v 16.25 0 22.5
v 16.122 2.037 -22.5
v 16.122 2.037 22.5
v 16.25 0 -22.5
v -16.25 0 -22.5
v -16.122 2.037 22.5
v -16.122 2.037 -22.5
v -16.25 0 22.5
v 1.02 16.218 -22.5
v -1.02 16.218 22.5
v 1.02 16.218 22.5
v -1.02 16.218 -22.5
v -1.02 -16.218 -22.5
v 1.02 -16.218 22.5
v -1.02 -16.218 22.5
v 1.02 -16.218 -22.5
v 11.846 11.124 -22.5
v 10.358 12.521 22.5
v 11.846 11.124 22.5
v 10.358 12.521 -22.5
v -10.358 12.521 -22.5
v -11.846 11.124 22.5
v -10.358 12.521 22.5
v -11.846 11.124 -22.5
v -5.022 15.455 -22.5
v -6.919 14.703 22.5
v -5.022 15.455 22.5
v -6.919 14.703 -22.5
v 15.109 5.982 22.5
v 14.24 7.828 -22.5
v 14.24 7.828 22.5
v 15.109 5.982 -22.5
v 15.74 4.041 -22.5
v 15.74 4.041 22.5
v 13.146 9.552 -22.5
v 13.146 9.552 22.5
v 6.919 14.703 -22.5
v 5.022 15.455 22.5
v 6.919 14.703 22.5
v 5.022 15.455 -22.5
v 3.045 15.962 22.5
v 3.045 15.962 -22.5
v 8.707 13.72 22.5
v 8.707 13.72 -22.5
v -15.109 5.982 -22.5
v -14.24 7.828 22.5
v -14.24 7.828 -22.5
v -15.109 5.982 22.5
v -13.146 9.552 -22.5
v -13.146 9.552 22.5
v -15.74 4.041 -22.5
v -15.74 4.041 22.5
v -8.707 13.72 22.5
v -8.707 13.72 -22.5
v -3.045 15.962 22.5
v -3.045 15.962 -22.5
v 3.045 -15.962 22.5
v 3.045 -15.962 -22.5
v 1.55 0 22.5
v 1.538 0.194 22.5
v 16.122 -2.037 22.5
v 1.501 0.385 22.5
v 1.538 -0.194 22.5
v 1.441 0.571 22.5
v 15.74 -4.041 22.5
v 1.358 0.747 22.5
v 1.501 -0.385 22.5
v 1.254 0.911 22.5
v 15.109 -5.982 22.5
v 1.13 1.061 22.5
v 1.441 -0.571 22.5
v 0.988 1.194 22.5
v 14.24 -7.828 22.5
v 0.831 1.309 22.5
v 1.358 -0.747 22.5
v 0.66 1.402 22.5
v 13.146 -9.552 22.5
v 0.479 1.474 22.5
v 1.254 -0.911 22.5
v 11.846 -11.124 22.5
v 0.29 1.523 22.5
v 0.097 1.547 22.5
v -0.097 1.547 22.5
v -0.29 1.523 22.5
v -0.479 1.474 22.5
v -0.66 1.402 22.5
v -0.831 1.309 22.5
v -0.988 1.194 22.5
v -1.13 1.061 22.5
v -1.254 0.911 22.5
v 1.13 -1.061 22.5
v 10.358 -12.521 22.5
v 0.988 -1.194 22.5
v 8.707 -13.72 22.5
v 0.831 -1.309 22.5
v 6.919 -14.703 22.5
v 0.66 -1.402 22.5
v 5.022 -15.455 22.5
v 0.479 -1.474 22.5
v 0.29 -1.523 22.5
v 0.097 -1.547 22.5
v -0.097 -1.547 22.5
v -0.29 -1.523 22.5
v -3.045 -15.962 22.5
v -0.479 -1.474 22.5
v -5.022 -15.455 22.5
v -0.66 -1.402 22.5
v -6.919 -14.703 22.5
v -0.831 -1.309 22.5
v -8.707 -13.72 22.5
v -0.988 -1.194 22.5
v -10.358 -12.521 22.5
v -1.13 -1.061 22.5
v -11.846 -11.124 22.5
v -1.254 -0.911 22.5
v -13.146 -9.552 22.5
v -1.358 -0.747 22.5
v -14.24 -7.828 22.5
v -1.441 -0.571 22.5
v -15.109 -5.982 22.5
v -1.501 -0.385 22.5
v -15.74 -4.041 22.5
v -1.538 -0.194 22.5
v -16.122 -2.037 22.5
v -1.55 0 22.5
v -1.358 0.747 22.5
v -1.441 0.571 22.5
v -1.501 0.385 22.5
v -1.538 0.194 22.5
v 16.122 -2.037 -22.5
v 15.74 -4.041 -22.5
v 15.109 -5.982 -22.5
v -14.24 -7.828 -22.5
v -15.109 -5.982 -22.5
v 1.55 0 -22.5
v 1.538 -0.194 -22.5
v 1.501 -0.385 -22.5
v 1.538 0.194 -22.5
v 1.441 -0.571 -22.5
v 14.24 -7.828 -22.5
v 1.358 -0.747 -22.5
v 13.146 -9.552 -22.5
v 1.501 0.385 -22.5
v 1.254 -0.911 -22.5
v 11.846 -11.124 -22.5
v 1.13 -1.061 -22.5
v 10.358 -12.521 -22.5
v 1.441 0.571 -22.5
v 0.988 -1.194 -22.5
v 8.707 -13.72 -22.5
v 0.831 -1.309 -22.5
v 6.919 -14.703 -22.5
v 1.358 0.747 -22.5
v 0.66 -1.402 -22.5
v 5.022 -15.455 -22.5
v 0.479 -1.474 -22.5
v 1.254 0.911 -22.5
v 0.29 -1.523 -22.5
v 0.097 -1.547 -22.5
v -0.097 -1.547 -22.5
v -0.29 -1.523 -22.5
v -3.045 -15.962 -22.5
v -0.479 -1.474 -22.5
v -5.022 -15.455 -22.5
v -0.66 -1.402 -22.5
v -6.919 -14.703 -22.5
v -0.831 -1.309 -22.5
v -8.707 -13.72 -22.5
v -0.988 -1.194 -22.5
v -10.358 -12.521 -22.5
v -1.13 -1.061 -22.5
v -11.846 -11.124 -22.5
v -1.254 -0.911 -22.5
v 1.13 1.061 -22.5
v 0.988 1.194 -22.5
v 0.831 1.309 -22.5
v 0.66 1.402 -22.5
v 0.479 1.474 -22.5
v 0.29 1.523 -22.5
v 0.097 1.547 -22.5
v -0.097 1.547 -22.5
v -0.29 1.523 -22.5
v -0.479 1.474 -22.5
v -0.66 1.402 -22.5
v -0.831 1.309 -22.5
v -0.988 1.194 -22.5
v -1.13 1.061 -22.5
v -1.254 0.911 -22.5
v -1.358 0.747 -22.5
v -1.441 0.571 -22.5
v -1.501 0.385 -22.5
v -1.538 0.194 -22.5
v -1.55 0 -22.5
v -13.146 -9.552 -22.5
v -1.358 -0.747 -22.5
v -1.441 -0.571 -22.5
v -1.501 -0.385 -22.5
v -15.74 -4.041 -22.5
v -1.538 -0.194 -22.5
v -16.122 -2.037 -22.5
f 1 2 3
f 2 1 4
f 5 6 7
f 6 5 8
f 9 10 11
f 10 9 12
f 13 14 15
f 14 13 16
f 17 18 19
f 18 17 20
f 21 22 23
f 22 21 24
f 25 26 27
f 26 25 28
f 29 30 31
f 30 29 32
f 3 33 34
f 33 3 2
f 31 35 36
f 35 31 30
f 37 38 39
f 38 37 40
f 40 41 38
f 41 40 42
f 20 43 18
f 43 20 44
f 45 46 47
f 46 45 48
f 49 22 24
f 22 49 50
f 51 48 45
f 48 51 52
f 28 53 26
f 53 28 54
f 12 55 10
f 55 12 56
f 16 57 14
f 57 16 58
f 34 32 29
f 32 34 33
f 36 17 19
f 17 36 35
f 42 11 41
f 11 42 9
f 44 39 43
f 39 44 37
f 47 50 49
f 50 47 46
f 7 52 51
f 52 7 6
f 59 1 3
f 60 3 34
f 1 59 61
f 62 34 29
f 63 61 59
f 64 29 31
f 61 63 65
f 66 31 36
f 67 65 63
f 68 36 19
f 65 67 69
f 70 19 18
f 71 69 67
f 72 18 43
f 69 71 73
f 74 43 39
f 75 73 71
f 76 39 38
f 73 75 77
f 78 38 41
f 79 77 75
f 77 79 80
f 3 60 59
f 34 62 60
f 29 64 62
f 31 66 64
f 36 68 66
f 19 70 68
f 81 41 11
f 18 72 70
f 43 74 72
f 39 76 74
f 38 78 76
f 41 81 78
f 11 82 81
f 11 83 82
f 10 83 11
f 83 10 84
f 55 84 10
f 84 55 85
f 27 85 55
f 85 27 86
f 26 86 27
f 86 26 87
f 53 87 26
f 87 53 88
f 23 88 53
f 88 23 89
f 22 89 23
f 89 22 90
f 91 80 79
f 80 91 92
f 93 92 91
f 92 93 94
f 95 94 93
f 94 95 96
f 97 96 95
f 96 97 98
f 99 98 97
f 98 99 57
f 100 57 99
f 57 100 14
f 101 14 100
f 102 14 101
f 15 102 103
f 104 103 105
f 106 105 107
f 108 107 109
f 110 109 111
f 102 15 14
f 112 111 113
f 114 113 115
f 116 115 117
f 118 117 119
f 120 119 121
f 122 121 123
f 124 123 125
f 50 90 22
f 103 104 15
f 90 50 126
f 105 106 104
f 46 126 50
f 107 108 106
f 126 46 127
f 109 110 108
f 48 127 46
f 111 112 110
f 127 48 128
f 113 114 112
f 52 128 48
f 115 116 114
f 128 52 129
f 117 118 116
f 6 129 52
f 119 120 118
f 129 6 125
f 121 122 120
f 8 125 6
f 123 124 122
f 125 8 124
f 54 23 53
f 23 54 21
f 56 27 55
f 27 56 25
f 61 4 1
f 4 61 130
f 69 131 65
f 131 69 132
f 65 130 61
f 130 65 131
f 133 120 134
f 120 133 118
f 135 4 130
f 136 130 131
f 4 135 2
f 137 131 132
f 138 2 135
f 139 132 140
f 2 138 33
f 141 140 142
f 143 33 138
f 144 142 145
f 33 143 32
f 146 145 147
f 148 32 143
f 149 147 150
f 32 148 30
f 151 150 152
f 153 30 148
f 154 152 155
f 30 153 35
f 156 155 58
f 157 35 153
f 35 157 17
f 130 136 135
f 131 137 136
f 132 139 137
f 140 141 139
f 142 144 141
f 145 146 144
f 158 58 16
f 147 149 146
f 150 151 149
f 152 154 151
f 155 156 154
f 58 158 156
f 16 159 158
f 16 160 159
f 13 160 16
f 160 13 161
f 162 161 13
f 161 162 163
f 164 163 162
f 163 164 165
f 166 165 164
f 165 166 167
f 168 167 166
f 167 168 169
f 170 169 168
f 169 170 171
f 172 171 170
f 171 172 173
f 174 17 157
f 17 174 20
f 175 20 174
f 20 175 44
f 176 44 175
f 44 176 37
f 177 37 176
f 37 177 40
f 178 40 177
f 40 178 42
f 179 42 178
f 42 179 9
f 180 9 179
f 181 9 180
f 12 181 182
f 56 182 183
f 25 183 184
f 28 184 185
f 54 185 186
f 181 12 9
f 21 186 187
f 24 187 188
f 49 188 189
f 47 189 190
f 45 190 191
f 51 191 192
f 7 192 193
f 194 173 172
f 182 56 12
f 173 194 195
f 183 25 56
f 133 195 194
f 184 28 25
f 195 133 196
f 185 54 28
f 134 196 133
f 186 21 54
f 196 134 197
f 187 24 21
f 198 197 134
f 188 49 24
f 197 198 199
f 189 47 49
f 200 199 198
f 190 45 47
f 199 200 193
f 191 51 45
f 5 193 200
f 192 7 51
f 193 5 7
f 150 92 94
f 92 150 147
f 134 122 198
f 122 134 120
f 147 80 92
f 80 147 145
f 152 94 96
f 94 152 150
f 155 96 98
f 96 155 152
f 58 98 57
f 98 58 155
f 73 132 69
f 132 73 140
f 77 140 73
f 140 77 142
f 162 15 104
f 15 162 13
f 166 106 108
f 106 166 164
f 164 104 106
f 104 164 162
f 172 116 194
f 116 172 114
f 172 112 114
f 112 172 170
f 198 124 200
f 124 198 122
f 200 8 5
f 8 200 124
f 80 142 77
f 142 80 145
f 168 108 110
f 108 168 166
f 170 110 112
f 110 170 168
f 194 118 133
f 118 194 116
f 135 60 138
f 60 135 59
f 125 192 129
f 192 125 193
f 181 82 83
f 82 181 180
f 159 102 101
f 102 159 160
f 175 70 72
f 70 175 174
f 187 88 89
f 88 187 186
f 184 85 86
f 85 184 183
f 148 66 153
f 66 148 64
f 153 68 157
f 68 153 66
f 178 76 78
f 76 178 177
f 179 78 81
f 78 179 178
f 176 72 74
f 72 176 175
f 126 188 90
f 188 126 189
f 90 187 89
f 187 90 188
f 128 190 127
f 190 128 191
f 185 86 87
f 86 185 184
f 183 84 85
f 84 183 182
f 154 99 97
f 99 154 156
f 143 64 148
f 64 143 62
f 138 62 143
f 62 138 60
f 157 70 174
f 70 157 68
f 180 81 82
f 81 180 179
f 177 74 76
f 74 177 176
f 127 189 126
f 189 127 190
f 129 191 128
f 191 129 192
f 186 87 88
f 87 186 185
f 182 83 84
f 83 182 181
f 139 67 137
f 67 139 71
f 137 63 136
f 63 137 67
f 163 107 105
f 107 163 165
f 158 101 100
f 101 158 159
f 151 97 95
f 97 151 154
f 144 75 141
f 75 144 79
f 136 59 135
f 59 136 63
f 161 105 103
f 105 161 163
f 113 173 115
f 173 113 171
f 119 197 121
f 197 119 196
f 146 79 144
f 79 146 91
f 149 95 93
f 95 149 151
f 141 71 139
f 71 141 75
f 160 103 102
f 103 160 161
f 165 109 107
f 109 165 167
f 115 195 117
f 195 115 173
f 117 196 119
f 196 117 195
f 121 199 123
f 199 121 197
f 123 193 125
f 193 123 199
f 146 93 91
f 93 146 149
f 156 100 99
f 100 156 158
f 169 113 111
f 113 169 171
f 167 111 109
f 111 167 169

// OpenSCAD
$fn = 50;


difference() {
	union() {
		translate(v = [0, 0, -22.5000000000]) {
			cylinder(h = 45, r = 16.2500000000);
		}
	}
	union() {
		translate(v = [0, 0, -100.0000000000]) {
			cylinder(h = 200, r = 1.5500000000);
		}
	}
}
